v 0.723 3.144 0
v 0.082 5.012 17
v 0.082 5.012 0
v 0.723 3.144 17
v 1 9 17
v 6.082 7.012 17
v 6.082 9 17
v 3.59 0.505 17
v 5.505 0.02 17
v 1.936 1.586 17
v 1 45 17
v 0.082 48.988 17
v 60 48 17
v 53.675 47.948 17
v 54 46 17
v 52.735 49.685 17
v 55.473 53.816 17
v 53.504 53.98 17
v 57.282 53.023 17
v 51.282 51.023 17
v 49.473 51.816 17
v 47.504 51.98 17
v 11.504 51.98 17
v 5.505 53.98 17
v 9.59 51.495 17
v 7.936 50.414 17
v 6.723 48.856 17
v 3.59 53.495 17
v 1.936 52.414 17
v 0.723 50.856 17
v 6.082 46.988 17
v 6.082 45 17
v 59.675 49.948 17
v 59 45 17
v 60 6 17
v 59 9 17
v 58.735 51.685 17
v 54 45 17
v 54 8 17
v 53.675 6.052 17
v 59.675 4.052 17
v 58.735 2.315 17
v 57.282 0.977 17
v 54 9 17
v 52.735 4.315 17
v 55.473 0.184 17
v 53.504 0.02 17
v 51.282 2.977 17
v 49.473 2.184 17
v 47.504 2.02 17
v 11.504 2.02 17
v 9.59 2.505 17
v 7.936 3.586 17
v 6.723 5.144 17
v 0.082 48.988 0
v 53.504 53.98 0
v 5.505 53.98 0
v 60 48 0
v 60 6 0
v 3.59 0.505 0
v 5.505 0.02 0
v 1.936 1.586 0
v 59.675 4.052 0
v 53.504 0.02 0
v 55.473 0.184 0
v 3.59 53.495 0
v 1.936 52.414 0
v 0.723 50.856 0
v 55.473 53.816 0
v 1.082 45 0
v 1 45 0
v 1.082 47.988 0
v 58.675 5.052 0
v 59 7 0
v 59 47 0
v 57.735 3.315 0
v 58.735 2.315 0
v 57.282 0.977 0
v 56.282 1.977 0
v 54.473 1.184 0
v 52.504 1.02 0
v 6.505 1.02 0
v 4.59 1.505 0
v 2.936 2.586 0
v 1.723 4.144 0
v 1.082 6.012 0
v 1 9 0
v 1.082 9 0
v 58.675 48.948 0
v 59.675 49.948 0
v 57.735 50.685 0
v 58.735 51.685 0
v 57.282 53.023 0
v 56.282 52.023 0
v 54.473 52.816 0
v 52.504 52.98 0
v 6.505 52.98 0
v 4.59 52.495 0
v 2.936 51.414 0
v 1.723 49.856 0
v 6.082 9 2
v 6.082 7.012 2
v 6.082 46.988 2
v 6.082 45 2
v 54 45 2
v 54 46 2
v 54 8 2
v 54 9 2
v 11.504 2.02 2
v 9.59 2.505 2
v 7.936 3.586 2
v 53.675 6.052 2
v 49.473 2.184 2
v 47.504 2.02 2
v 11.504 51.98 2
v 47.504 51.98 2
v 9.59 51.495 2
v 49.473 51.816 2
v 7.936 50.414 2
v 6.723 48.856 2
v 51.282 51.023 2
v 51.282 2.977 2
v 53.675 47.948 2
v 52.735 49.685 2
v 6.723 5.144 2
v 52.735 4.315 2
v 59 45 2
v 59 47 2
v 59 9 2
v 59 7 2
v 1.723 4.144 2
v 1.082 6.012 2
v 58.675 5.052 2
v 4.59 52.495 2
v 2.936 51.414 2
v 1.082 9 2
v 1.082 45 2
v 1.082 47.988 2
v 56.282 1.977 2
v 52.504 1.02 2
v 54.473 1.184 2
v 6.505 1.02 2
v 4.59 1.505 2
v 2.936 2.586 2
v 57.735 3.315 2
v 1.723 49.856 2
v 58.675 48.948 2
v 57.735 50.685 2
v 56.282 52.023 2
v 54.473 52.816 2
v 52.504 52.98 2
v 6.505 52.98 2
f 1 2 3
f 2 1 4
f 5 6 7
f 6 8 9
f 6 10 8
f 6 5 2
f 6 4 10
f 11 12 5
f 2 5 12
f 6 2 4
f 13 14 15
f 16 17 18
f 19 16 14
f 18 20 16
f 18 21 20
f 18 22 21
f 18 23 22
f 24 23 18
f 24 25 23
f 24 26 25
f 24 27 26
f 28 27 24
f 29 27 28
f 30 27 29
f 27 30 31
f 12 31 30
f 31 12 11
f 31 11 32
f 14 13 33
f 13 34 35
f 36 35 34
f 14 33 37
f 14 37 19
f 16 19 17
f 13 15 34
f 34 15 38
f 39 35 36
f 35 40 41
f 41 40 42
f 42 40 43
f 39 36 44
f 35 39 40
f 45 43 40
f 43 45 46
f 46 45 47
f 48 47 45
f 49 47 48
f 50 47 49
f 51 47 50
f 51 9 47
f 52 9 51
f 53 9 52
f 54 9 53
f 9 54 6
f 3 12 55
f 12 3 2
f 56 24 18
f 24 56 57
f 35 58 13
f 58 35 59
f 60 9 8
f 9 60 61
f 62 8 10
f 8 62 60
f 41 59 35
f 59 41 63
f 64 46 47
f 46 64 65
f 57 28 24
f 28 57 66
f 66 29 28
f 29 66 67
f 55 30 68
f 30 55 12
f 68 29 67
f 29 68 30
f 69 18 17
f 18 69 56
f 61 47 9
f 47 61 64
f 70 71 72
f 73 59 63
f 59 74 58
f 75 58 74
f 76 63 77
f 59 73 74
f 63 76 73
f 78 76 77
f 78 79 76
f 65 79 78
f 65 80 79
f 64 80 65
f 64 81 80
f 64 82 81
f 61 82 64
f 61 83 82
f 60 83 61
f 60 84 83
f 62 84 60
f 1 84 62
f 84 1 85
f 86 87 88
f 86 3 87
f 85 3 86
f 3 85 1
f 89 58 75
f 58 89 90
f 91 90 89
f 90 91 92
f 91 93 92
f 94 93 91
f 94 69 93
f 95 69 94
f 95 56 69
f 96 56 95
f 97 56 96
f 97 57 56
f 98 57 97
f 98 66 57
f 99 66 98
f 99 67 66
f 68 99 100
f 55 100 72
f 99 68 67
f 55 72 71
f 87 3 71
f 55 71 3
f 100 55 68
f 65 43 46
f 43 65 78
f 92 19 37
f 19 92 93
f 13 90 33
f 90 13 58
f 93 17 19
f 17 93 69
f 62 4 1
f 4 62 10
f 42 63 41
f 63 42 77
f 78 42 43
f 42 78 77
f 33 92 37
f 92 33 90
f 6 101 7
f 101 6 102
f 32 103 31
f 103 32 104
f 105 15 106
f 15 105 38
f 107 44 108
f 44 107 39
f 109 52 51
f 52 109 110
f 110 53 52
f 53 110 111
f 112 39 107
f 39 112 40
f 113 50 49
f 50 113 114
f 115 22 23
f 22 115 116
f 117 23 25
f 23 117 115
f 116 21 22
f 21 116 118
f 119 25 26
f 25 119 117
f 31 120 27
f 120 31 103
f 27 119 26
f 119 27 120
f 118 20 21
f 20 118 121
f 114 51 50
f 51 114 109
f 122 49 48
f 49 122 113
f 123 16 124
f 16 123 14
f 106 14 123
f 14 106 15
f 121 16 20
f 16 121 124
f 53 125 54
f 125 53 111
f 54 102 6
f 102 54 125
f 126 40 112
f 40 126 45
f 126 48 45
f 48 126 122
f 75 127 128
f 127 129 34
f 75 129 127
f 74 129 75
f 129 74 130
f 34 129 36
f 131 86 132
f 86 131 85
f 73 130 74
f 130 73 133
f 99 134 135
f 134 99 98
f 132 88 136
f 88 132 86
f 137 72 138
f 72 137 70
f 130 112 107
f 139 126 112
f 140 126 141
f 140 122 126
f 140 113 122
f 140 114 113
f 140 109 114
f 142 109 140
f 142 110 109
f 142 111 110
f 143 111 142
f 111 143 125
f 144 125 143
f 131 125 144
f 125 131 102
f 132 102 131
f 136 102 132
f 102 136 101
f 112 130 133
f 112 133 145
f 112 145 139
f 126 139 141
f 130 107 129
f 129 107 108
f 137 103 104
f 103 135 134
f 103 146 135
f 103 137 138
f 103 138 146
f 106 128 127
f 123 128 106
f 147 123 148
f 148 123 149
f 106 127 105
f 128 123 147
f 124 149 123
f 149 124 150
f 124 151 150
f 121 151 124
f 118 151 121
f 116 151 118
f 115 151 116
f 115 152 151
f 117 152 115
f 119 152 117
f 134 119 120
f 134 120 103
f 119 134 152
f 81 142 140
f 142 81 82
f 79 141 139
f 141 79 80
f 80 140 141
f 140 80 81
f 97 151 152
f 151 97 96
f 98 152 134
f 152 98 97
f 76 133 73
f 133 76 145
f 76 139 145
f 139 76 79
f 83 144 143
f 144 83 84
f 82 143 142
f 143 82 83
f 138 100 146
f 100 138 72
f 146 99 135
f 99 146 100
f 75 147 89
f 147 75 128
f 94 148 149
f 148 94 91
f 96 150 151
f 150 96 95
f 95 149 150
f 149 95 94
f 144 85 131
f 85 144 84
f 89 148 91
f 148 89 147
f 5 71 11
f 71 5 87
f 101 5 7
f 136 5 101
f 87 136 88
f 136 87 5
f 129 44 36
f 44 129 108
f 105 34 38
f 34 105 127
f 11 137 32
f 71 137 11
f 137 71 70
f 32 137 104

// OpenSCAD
union(){
    difference(){
        //outside box
        translate([6,6,0]){
            minkowski(){
                cube([48,42,1]);
                cylinder(r=6,h=16);
            }
        }
        //hollow interior
        translate([12,8,0]){
            minkowski(){
                cube([36,38,2]);
                cylinder(r=6,h=16);
            }
        }
        //ridge for interior
        translate([7,7,0]){
            minkowski(){
                cube([46,40,1]);
                cylinder(r=6,h=1);
            }
        }
        //display cutout
        translate([14,12,0]){
            cube([36,30,3]);
        }
        //notches in inside top & bottom wall
        translate([1,9,0]){
            cube([58,36,17]);
        }
    }
    
}
       
